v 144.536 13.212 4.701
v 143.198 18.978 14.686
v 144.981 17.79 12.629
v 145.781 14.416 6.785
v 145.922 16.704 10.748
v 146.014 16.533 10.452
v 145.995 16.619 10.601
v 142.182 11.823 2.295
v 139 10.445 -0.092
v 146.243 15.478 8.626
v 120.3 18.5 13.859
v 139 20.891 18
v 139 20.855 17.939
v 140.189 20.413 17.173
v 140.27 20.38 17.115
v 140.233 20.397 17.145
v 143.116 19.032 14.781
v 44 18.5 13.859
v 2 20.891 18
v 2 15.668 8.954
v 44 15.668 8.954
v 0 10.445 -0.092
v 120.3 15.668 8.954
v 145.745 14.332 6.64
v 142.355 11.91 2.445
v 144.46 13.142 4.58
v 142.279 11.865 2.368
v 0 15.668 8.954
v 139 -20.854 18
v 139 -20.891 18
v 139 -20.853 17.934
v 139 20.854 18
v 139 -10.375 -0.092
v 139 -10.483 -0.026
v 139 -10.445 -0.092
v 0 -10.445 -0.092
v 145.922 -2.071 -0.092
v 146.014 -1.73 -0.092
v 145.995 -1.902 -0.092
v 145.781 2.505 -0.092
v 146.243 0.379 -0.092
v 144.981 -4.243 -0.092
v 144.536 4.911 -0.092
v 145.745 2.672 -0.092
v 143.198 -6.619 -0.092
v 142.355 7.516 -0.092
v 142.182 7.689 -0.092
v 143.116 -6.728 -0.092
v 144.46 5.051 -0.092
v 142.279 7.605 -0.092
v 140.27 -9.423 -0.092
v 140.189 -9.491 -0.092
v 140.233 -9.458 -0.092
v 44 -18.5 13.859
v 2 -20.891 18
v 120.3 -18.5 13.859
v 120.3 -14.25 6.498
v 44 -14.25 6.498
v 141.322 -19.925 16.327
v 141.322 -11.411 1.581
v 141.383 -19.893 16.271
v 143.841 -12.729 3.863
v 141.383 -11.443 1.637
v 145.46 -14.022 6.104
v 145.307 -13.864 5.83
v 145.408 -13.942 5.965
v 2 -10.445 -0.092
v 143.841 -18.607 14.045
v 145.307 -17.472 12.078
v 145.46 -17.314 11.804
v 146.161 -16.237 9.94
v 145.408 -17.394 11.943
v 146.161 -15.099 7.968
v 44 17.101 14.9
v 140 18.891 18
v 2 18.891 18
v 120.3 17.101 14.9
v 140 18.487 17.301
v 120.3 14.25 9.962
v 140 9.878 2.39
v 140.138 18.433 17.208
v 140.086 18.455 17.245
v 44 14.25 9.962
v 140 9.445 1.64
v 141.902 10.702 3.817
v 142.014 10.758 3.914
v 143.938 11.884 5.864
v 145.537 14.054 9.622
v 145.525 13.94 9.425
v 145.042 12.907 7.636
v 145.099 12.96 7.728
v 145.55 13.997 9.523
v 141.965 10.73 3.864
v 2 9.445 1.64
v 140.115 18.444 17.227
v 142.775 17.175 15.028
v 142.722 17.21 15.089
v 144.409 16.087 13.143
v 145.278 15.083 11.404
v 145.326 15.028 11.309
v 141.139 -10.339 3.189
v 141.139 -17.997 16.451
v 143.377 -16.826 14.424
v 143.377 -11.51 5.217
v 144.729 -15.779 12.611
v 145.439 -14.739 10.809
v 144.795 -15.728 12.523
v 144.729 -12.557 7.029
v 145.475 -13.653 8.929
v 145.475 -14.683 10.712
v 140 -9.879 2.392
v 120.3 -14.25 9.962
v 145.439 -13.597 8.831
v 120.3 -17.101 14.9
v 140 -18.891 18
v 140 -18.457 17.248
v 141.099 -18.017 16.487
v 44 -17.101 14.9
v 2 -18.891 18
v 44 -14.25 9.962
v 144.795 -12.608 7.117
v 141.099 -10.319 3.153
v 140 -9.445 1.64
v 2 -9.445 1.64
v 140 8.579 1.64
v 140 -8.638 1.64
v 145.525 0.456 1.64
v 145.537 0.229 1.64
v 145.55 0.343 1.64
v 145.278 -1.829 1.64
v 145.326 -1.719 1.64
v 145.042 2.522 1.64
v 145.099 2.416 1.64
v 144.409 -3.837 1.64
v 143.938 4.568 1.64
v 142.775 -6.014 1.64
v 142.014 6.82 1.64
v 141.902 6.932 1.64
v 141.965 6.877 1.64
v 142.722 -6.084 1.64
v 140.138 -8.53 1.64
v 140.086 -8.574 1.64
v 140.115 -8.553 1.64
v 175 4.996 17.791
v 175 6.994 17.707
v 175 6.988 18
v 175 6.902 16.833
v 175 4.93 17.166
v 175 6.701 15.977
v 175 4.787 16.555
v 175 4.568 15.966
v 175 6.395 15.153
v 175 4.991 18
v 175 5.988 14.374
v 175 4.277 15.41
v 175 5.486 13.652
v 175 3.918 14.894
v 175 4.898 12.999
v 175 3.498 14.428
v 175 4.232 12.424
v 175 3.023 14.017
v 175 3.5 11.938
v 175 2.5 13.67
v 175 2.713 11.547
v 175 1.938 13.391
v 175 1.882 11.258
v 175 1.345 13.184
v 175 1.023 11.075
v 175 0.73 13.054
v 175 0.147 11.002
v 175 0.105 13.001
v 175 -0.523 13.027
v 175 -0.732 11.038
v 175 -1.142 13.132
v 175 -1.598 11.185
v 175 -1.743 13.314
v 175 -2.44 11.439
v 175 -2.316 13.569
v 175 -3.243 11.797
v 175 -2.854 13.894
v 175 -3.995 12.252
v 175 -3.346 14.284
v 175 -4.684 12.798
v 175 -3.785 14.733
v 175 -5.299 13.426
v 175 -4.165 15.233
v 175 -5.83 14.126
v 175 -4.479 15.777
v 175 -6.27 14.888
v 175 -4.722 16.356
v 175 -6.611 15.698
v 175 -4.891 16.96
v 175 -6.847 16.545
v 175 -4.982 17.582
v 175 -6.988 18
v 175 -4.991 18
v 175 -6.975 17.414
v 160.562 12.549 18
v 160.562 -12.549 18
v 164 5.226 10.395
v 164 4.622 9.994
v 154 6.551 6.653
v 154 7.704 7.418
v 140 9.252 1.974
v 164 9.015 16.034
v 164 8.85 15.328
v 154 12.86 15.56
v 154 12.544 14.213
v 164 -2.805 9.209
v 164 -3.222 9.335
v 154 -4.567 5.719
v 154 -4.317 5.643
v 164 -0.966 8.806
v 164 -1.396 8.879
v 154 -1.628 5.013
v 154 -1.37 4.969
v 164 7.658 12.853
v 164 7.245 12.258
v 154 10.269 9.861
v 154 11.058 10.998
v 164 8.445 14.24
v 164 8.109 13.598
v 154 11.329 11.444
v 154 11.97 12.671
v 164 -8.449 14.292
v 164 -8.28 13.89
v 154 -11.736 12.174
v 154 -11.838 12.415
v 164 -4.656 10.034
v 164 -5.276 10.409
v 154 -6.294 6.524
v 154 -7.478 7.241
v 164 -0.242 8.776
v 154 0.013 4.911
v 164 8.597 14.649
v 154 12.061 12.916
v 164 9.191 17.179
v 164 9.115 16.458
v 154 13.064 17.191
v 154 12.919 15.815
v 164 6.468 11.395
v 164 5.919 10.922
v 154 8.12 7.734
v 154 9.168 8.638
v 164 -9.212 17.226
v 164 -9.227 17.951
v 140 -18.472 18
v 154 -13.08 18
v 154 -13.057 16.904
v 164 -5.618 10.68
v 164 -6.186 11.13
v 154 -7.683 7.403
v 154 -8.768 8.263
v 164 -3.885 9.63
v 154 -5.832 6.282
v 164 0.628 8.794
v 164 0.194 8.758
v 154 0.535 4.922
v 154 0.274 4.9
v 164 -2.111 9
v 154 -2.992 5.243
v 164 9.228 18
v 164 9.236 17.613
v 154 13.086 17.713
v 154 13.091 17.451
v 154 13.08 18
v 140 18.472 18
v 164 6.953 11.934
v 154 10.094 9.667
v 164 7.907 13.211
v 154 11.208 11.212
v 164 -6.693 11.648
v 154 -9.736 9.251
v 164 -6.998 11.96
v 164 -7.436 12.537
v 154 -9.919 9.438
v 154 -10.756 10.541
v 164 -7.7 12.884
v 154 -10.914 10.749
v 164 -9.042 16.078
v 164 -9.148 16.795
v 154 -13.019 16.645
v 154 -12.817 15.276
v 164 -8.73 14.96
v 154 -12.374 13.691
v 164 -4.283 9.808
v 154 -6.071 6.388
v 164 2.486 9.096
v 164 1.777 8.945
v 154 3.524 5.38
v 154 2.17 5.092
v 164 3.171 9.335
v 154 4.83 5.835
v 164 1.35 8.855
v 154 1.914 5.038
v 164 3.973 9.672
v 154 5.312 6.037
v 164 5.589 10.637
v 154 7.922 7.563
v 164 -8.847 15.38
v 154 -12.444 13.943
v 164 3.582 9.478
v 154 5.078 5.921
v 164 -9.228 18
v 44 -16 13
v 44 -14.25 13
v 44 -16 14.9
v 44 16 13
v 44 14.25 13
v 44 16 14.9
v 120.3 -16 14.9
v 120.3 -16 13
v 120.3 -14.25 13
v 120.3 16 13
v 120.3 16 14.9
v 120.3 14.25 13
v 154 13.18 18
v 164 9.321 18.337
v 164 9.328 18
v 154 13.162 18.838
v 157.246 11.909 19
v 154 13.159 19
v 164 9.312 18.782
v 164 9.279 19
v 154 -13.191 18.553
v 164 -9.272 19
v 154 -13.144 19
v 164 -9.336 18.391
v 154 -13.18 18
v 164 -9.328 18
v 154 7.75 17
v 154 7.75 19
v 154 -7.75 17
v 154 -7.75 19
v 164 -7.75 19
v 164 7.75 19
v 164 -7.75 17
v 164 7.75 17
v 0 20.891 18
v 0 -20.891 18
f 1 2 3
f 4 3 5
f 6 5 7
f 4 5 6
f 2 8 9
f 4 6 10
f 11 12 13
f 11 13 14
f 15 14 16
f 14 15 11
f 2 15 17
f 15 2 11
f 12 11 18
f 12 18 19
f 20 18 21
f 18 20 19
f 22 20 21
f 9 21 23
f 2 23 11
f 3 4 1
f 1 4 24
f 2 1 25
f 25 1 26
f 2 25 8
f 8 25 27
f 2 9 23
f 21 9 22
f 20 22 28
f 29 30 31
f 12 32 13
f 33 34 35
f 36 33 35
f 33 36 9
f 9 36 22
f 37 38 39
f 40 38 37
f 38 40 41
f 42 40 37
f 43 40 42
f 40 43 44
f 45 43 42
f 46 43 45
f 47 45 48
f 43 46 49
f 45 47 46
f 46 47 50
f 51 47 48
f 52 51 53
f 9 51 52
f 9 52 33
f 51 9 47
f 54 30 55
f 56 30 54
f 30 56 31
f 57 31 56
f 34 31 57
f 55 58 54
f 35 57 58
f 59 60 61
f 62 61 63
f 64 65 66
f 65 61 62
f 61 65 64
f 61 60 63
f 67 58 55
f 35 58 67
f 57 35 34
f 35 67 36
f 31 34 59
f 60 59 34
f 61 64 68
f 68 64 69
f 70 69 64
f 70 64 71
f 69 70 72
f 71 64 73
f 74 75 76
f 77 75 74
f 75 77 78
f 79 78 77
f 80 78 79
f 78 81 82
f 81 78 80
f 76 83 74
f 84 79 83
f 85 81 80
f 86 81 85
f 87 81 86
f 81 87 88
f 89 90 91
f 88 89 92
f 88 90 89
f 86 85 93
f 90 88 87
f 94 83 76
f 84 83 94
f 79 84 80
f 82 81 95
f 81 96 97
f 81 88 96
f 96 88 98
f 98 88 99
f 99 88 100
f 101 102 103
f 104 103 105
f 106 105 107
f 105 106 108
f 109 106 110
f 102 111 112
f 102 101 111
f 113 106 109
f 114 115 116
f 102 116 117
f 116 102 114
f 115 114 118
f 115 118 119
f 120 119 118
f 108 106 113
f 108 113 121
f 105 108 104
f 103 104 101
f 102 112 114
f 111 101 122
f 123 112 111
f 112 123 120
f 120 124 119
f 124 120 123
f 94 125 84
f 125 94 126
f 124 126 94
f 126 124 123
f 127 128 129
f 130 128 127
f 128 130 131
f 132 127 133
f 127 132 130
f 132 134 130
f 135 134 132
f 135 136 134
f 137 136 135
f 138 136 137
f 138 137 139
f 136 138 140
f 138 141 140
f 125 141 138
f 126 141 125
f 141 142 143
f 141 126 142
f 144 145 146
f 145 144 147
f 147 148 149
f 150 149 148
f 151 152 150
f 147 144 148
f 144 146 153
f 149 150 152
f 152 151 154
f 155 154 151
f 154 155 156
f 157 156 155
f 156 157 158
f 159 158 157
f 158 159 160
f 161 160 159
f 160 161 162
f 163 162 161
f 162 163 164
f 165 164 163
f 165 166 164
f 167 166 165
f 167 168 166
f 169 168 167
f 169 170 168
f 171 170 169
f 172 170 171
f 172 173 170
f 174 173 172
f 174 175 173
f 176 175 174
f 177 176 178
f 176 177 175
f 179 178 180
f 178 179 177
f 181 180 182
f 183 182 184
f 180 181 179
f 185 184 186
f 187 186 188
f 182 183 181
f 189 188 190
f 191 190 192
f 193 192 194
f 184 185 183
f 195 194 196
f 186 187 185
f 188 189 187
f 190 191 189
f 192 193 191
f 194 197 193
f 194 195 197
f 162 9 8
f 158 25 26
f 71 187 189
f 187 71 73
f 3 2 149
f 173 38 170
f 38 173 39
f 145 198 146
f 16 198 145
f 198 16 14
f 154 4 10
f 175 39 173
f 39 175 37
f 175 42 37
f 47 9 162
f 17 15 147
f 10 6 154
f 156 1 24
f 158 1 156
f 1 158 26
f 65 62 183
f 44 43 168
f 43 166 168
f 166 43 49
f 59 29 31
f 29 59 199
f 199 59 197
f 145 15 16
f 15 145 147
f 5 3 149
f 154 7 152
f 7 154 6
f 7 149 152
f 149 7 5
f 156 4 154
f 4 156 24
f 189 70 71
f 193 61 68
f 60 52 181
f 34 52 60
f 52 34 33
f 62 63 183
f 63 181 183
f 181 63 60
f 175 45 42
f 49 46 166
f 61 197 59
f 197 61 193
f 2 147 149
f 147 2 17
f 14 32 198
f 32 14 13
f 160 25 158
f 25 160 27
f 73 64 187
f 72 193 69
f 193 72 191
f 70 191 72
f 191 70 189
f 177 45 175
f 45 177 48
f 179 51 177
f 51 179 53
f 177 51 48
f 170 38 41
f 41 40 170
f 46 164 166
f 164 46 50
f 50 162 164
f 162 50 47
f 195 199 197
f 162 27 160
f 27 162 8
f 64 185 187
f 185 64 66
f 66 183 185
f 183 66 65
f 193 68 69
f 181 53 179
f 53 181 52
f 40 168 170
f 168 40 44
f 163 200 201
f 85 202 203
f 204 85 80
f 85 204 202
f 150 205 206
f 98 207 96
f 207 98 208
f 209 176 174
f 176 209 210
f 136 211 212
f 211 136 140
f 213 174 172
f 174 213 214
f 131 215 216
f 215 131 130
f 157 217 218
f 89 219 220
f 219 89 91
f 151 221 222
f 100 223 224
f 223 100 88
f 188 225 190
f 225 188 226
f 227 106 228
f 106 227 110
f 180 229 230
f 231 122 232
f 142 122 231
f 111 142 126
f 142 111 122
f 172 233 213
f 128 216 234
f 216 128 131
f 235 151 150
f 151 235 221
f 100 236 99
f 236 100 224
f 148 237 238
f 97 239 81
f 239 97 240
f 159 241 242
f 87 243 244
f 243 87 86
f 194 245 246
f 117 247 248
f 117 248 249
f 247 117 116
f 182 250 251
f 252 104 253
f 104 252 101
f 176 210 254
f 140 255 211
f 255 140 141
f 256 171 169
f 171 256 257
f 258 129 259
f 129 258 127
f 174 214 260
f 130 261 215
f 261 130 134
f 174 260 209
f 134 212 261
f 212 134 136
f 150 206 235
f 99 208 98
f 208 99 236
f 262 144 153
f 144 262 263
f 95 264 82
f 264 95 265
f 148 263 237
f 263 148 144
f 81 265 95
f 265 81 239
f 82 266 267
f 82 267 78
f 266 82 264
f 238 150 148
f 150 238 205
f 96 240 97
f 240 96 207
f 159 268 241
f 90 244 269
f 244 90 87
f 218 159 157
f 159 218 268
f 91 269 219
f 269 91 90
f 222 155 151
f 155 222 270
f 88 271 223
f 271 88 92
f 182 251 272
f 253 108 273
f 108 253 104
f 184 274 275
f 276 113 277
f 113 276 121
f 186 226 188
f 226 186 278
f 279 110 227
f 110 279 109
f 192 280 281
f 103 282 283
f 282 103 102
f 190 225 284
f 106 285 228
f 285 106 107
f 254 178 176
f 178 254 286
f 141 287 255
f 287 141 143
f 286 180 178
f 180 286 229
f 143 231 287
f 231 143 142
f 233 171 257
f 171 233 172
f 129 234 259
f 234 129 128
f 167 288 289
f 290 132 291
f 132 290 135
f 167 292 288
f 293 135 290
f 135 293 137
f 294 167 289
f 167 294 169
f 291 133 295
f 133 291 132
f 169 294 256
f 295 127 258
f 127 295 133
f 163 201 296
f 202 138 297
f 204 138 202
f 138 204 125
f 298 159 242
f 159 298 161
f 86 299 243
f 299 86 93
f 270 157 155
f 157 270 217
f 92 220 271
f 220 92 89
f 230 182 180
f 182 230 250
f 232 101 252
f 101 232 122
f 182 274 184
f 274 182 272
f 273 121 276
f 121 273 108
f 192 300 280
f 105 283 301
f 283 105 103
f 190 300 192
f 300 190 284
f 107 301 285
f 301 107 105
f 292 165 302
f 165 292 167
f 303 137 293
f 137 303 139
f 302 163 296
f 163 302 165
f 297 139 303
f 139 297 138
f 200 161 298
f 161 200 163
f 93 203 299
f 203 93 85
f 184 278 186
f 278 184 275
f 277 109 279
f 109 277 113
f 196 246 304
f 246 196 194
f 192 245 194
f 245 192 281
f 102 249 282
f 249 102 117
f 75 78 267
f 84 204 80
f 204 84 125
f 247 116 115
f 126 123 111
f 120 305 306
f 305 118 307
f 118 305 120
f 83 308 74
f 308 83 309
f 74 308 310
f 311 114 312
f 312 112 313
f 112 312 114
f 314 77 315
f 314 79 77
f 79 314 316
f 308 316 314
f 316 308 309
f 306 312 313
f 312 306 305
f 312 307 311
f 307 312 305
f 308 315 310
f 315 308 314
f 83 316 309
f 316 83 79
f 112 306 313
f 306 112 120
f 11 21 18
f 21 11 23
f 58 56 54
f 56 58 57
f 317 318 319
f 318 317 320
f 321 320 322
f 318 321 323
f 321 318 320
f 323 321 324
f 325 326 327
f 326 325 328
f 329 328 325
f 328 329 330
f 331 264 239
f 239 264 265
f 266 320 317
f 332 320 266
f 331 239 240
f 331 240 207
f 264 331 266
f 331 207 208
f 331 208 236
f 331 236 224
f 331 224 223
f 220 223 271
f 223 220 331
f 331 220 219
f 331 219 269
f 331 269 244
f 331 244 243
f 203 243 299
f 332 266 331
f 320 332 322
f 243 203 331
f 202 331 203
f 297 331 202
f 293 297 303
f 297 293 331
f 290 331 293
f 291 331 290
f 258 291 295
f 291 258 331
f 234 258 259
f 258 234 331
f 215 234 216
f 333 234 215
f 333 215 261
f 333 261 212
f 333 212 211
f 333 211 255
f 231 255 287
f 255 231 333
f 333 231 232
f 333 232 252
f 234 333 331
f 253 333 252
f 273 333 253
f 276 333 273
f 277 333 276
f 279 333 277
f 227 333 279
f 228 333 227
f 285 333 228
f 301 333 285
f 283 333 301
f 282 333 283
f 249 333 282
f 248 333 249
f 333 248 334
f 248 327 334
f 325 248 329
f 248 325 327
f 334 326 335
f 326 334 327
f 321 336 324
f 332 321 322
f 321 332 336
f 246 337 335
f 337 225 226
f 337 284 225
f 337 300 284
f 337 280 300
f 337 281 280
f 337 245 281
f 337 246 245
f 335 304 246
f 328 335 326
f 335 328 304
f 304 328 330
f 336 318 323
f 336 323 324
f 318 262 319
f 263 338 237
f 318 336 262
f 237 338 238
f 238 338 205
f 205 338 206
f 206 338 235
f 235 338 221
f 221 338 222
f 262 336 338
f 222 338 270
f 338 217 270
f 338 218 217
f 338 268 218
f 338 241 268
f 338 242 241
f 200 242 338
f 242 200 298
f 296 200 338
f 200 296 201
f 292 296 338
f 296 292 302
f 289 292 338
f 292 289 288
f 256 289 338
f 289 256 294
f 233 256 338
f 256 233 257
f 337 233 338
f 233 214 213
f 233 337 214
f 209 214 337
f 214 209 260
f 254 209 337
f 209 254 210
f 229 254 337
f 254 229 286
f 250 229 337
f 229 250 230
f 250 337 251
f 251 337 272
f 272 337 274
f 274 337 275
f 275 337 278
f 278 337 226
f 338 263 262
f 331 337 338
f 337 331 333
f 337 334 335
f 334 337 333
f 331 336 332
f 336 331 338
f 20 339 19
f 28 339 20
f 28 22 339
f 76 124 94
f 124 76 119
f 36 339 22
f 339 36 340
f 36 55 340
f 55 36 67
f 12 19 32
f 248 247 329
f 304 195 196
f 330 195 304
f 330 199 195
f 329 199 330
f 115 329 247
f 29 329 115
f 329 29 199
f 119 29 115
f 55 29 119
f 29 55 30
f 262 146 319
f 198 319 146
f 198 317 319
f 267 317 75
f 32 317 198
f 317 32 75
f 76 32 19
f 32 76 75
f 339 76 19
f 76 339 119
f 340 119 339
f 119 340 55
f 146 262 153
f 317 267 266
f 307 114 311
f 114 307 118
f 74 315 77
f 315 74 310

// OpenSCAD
pcb_width = 32;
pcb_thickness = 2;
pcb_length = 109;

pcb_margin = 1;

ec_width_top = 26.5;
ec_height_top = 14;
ec_length_top = 94;
ec_width_botton = 18;
ec_height_botton = 12.5;
ec_length_botton = 60;

cam_pcb_width = 15.5;
cam_pcb_length = 30;
cam_pcb_onset = 10;
cam_support_length = 10;

cam_width = 9;
cam_heigth = 10;
cam_length = 5.5;
cam_offset = 24;
cam_hole_dia = 10;

chr_pcb_width = 17;
chr_pcb_length = 42; //27;
chr_hole_offset = 1;
chr_hole_height = 4;
chr_hole_width = 8.5;
chr_hole_length = 9;
chr_hole_out = 1;

ec_z_offset = -5;

wall_thickness = 2;

screw_dia = 4;
screw_head_dia = 7;

/*****************************************************************************/

part = 1;
/*
FULL = 0
TOP = 1
BOTTON = 2
 */
/******************************************************************************/

ext_dia = pcb_width + wall_thickness*2;
case_length =
	pcb_length
	+ chr_pcb_length
	+ cam_pcb_length
	+ wall_thickness*2
	- cam_pcb_onset;
echo(str("Total length = ", case_length));

cone_pos = chr_pcb_length + ec_length_top + wall_thickness + pcb_margin;

pcb_support = (pcb_width - ec_width_top)/2- pcb_margin;

max_dia = ext_dia/cos(360/12);

/******************************************************************************/



if(part == 0){

	%translate([wall_thickness, 0, 0]) {
		electronics();
	}

	case(case_length, cone_pos);

	translate([chr_pcb_length, 0, 0]) {
		support_pcb(pcb_length*0.7);
	}

	support_cam();

	back_cover();

}

if(part == 1){

	translate([0, 0, ext_dia/2]) {

		%translate([wall_thickness, 0, 0]) {
			electronics();
		}

		difference() {
			union() {
				case(case_length, cone_pos);
				back_cover();
			}
			translate([-1, -max_dia/2-1, 0]){
				cube(size=[case_length+2, max_dia+2, max_dia]);
			}
		}

		difference() {
			translate([chr_pcb_length, 0, 0]) {
				support_pcb(pcb_length*0.7);
			}
			translate([-1, -max_dia/2-1, pcb_thickness+ec_z_offset-0.1]){
				cube(size=[case_length+2, max_dia+2, max_dia]);
			}
		}
		support_cam();
	}

}

/******************************************************************************/

module back_cover() {
	difference() {
		rotate([0, 90, 0]) rotate([0, 0, 360/12]) {
			hexagon(ext_dia, wall_thickness);
		}

		translate([-1, -chr_hole_width/2, pcb_thickness]) {
			cube(size=[wall_thickness+2, chr_hole_width, chr_hole_height]);
		}
	}
}

module support_cam() {
	intersection() {
		translate([chr_pcb_length+pcb_length+wall_thickness+cam_support_length/2, 0, 0]){
			difference() {
				translate([1, 0, +pcb_thickness/2-ext_dia/2]) {
					cube(size=[cam_support_length, ext_dia, ext_dia], center=true);
				}

				translate([0, 0, +0.5]) {
					cube(size=[cam_pcb_length, cam_pcb_width, pcb_thickness+1], center=true);
				}

			}
		}
		translate([cone_pos, 0, 0]) rotate([0, 90, 0]) rotate([0, 0, 360/12]) {
			case_end(
				ext_dia,
				cam_hole_dia/2+wall_thickness,
				case_length-cone_pos,
				t = wall_thickness-0.1
			);
		}
	}
}

module support_pcb(length) {

	translate([length/2 + wall_thickness, 0, 0]) {
		intersection() {
			difference() {
				cube(size=[length, ext_dia+1, ext_dia+1], center=true);
				translate([0, 0, ec_z_offset+pcb_thickness/2]) {
					cube(size=[length+1, pcb_width, pcb_thickness], center=true);
				}
				cube(size=[length+1, pcb_width - pcb_support*2, ext_dia+2], center=true);
			}
			translate([-length/2, 0, 0]) {
				rotate([0, 90, 0]) rotate([0, 0, 360/12]) {
					hexagon(ext_dia, length);
				}
			}
		}
	}
}

module case(length, cone){
	rotate([0, 90, 0]) rotate([0, 0, 360/12]) {
		hexagon_hollow(ext_dia, cone, wall_thickness);
		translate([0, 0, cone]){
			difference() {
				case_end(
					ext_dia,
					cam_hole_dia/2+wall_thickness,
					length-cone
				);
				case_end(
					ext_dia,
					cam_hole_dia/2+wall_thickness,
					length-cone,
					t = wall_thickness
				);
			}
		}
	}
}

module case_end(r1, r2, length, t=0){
	$fn = 50;
	translate([0, 0, -1]) intersection() {
		hexagon(r1, length + 1, t=t);
		translate([0, 0, 1]) cylinder(
			r1=r1/cos(366/12)/2 - t,
			r2=r2 - t,
			h=length);
	}
	if(t>0){
		translate([0, 0, length]) cylinder(r=r2 - t, h=2, center=true);
		translate([0, 0, -1]) hexagon(r1, 2, t=t);
	}
}


module hexagon_hollow(ext_dia, h, thickness) {
	difference() {
		hexagon(ext_dia, h);
		translate([0, 0, -1]) hexagon(ext_dia, h+2, t=thickness);
	}
}

module hexagon(ext_dia, h, t=0) {
	cylinder(d=ext_dia/cos(366/12)-t*2, h=h, $fn = 6);
}



module electronics() {
	translate([chr_pcb_length, 0, ec_z_offset]) {
		color("green"){
			translate([0, -pcb_width/2, 0]){
				cube(size=[pcb_length, pcb_width, pcb_thickness]);
			}
			translate([
				pcb_length - cam_pcb_onset,
				-cam_pcb_width/2,
				-pcb_thickness/2-ec_z_offset
			]) {
				cube(size=[cam_pcb_length, cam_pcb_width, pcb_thickness]);
			}
			translate([-chr_pcb_length, -chr_pcb_width/2, -ec_z_offset]) {
				cube(size=[chr_pcb_length, chr_pcb_width, pcb_thickness]);
			}
		}
		color("SteelBlue"){
			translate([0, -ec_width_top/2, 0]){
				cube(size=[ec_length_top, ec_width_top, ec_height_top]);
			}
			translate([0, -ec_width_botton/2, -ec_height_botton+pcb_thickness]){
				cube(size=[ec_length_botton, ec_width_botton, ec_height_botton]);
			}
		}

		color("black"){
			translate([
				pcb_length + cam_offset + cam_length/2 - cam_pcb_onset,
				0,
				-ec_z_offset
			]) {
				cube(size=[cam_length, cam_width, cam_heigth], center=true);
			}
		}

		color("Silver"){
			translate([
				-chr_pcb_length - chr_hole_out,
				-chr_hole_width/2,
				pcb_thickness - ec_z_offset
			]) {
				cube(size=[chr_hole_length, chr_hole_width, chr_hole_height]);
			}
		}
	}

}
